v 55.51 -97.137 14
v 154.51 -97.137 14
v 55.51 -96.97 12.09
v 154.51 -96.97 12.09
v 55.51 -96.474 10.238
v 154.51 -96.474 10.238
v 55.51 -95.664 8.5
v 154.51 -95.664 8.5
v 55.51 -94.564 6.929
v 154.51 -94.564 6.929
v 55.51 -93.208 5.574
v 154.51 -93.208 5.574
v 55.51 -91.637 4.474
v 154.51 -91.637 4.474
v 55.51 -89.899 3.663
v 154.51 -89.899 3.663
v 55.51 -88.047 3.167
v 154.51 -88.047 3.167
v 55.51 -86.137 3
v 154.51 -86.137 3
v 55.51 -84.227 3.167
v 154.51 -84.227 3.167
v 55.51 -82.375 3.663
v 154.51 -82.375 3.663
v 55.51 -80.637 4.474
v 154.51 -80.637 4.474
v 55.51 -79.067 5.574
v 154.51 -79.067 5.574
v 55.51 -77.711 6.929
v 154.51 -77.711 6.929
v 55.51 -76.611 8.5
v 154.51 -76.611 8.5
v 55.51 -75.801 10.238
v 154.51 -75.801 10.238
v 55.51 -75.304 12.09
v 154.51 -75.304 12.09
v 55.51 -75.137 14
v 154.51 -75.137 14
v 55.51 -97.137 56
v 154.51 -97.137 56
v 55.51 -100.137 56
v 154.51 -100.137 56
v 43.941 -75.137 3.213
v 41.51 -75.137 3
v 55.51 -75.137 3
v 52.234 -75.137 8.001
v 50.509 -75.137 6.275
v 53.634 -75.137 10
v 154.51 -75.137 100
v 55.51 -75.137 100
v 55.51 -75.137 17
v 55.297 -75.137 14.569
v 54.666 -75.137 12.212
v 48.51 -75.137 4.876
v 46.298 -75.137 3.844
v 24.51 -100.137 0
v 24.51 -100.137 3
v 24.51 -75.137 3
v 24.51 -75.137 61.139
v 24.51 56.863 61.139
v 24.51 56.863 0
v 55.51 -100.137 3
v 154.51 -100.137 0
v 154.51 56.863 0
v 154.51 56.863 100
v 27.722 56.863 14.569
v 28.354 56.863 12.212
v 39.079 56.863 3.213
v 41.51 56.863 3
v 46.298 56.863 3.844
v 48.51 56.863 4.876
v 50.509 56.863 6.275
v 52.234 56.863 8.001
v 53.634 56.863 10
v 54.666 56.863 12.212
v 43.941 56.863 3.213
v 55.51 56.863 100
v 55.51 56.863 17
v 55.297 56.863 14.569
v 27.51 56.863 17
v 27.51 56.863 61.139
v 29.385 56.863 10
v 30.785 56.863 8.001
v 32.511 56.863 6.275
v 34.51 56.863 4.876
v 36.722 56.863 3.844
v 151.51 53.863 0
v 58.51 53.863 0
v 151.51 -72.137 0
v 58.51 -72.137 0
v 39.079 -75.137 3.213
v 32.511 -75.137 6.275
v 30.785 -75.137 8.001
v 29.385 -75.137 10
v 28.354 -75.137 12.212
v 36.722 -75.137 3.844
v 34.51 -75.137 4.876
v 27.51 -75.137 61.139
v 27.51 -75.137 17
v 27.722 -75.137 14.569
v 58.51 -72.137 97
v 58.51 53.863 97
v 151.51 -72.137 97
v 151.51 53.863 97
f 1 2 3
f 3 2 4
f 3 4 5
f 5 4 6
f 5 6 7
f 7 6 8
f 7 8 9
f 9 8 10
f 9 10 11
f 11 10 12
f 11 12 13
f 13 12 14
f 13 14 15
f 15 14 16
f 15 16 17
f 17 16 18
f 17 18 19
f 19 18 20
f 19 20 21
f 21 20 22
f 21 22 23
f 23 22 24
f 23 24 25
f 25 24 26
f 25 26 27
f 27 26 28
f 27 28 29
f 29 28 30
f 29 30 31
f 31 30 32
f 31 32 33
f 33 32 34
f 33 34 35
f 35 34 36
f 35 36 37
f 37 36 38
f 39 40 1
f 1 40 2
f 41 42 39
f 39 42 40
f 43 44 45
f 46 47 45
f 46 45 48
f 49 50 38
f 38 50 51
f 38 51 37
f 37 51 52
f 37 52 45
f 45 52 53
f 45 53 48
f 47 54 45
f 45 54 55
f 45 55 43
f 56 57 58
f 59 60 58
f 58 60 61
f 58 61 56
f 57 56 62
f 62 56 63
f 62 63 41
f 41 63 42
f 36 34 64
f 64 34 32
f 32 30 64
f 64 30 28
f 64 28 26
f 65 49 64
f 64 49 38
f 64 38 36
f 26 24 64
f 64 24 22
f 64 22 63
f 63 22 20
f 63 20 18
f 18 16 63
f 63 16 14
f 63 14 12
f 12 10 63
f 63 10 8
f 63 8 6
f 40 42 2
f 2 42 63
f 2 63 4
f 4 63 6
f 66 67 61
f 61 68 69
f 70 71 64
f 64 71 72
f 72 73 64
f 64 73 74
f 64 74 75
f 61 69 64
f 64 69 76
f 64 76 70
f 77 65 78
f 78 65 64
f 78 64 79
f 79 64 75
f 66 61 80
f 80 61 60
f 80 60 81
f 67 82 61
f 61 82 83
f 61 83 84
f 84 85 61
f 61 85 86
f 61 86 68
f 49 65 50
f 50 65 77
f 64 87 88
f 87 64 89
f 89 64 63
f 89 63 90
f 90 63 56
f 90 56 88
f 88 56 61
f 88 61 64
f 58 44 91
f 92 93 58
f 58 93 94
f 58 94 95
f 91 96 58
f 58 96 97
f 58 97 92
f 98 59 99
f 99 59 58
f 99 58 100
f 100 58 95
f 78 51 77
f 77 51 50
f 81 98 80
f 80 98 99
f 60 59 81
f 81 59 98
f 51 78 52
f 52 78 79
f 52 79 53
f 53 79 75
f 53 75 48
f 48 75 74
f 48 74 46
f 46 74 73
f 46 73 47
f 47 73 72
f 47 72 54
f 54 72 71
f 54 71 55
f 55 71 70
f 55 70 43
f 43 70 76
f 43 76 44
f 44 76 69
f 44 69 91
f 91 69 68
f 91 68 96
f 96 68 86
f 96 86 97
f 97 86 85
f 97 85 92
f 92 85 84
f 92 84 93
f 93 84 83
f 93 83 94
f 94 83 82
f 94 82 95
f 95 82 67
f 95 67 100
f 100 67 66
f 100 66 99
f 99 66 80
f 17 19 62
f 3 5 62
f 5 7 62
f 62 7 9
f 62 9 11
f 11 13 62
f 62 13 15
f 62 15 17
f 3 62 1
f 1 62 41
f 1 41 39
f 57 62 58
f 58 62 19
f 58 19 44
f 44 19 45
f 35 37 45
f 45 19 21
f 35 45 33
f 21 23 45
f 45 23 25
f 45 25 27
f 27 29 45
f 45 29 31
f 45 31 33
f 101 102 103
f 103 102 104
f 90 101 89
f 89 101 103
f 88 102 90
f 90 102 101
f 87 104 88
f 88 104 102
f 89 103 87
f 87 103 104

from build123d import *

# Parameters (mm, degrees)
SKETCH1_W           = 130
SKETCH1_H           = 157
BOSS_EXTRUDE1_DEPTH = 100
CUT_EXTRUDE3_DEPTH  = 130
CUT_EXTRUDE7_DEPTH  = 157
SKETCH10_W          = 31
SKETCH10_H          = 58.139222378
CUT_EXTRUDE8_DEPTH  = 25
SKETCH11_W          = 93
SKETCH11_H          = 126
CUT_EXTRUDE9_DEPTH  = 97


with BuildPart() as part:
    # Sketch1 → Boss-Extrude1 (new body)
    with BuildSketch(Plane.XY):
        with Locations((89.509803922, -21.637254902)):
            Rectangle(SKETCH1_W, SKETCH1_H)
    extrude(amount=BOSS_EXTRUDE1_DEPTH)

    # Sketch3 → Cut-Extrude3 (cut)
    with BuildSketch(Plane(origin=(154.509803922, 0, 0), x_dir=(0, 0, -1), z_dir=(1, 0, 0))):
        with BuildLine():
            Line((-14, -97.137254902), (-56, -97.137254902))
            Line((-56, -97.137254902), (-56, -100.137254902))
            Line((-56, -100.137254902), (-100, -100.137254902))
            Line((-100, -100.137254902), (-100, -75.137254902))
            Line((-100, -75.137254902), (-14, -75.137254902))
            ThreePointArc((-14, -75.137254902), (-3, -86.137254902), (-14, -97.137254902))
        make_face()
    extrude(amount=-CUT_EXTRUDE3_DEPTH, mode=Mode.SUBTRACT)

    # Sketch9 → Cut-Extrude7 (cut)
    with BuildSketch(Plane(origin=(0, 56.862745098, 0), x_dir=(1, 0, 0), z_dir=(0, 1, 0))):
        with BuildLine():
            Line((27.509803922, -17), (27.509803922, -61.139222378))
            Line((27.509803922, -61.139222378), (24.509803922, -61.139222378))
            Line((24.509803922, -61.139222378), (24.509803922, -100))
            Line((24.509803922, -100), (55.509803922, -100))
            Line((55.509803922, -100), (55.509803922, -17))
            ThreePointArc((55.509803922, -17), (41.509803922, -3), (27.509803922, -17))
        make_face()
    extrude(amount=-CUT_EXTRUDE7_DEPTH, mode=Mode.SUBTRACT)

    # Sketch10 → Cut-Extrude8 (cut)
    with BuildSketch(Plane.XZ.offset(100.137254902)):
        with Locations((40.009803922, 32.069611189)):
            Rectangle(SKETCH10_W, SKETCH10_H)
    extrude(amount=-CUT_EXTRUDE8_DEPTH, mode=Mode.SUBTRACT)

    # Sketch11 → Cut-Extrude9 (cut)
    with BuildSketch(Plane(origin=(0, 0, 0), x_dir=(-1, 0, 0), z_dir=(0, 0, -1))):
        with Locations((-105.009803922, -9.137254902)):
            Rectangle(SKETCH11_W, SKETCH11_H)
    extrude(amount=-CUT_EXTRUDE9_DEPTH, mode=Mode.SUBTRACT)


solid = part.part
